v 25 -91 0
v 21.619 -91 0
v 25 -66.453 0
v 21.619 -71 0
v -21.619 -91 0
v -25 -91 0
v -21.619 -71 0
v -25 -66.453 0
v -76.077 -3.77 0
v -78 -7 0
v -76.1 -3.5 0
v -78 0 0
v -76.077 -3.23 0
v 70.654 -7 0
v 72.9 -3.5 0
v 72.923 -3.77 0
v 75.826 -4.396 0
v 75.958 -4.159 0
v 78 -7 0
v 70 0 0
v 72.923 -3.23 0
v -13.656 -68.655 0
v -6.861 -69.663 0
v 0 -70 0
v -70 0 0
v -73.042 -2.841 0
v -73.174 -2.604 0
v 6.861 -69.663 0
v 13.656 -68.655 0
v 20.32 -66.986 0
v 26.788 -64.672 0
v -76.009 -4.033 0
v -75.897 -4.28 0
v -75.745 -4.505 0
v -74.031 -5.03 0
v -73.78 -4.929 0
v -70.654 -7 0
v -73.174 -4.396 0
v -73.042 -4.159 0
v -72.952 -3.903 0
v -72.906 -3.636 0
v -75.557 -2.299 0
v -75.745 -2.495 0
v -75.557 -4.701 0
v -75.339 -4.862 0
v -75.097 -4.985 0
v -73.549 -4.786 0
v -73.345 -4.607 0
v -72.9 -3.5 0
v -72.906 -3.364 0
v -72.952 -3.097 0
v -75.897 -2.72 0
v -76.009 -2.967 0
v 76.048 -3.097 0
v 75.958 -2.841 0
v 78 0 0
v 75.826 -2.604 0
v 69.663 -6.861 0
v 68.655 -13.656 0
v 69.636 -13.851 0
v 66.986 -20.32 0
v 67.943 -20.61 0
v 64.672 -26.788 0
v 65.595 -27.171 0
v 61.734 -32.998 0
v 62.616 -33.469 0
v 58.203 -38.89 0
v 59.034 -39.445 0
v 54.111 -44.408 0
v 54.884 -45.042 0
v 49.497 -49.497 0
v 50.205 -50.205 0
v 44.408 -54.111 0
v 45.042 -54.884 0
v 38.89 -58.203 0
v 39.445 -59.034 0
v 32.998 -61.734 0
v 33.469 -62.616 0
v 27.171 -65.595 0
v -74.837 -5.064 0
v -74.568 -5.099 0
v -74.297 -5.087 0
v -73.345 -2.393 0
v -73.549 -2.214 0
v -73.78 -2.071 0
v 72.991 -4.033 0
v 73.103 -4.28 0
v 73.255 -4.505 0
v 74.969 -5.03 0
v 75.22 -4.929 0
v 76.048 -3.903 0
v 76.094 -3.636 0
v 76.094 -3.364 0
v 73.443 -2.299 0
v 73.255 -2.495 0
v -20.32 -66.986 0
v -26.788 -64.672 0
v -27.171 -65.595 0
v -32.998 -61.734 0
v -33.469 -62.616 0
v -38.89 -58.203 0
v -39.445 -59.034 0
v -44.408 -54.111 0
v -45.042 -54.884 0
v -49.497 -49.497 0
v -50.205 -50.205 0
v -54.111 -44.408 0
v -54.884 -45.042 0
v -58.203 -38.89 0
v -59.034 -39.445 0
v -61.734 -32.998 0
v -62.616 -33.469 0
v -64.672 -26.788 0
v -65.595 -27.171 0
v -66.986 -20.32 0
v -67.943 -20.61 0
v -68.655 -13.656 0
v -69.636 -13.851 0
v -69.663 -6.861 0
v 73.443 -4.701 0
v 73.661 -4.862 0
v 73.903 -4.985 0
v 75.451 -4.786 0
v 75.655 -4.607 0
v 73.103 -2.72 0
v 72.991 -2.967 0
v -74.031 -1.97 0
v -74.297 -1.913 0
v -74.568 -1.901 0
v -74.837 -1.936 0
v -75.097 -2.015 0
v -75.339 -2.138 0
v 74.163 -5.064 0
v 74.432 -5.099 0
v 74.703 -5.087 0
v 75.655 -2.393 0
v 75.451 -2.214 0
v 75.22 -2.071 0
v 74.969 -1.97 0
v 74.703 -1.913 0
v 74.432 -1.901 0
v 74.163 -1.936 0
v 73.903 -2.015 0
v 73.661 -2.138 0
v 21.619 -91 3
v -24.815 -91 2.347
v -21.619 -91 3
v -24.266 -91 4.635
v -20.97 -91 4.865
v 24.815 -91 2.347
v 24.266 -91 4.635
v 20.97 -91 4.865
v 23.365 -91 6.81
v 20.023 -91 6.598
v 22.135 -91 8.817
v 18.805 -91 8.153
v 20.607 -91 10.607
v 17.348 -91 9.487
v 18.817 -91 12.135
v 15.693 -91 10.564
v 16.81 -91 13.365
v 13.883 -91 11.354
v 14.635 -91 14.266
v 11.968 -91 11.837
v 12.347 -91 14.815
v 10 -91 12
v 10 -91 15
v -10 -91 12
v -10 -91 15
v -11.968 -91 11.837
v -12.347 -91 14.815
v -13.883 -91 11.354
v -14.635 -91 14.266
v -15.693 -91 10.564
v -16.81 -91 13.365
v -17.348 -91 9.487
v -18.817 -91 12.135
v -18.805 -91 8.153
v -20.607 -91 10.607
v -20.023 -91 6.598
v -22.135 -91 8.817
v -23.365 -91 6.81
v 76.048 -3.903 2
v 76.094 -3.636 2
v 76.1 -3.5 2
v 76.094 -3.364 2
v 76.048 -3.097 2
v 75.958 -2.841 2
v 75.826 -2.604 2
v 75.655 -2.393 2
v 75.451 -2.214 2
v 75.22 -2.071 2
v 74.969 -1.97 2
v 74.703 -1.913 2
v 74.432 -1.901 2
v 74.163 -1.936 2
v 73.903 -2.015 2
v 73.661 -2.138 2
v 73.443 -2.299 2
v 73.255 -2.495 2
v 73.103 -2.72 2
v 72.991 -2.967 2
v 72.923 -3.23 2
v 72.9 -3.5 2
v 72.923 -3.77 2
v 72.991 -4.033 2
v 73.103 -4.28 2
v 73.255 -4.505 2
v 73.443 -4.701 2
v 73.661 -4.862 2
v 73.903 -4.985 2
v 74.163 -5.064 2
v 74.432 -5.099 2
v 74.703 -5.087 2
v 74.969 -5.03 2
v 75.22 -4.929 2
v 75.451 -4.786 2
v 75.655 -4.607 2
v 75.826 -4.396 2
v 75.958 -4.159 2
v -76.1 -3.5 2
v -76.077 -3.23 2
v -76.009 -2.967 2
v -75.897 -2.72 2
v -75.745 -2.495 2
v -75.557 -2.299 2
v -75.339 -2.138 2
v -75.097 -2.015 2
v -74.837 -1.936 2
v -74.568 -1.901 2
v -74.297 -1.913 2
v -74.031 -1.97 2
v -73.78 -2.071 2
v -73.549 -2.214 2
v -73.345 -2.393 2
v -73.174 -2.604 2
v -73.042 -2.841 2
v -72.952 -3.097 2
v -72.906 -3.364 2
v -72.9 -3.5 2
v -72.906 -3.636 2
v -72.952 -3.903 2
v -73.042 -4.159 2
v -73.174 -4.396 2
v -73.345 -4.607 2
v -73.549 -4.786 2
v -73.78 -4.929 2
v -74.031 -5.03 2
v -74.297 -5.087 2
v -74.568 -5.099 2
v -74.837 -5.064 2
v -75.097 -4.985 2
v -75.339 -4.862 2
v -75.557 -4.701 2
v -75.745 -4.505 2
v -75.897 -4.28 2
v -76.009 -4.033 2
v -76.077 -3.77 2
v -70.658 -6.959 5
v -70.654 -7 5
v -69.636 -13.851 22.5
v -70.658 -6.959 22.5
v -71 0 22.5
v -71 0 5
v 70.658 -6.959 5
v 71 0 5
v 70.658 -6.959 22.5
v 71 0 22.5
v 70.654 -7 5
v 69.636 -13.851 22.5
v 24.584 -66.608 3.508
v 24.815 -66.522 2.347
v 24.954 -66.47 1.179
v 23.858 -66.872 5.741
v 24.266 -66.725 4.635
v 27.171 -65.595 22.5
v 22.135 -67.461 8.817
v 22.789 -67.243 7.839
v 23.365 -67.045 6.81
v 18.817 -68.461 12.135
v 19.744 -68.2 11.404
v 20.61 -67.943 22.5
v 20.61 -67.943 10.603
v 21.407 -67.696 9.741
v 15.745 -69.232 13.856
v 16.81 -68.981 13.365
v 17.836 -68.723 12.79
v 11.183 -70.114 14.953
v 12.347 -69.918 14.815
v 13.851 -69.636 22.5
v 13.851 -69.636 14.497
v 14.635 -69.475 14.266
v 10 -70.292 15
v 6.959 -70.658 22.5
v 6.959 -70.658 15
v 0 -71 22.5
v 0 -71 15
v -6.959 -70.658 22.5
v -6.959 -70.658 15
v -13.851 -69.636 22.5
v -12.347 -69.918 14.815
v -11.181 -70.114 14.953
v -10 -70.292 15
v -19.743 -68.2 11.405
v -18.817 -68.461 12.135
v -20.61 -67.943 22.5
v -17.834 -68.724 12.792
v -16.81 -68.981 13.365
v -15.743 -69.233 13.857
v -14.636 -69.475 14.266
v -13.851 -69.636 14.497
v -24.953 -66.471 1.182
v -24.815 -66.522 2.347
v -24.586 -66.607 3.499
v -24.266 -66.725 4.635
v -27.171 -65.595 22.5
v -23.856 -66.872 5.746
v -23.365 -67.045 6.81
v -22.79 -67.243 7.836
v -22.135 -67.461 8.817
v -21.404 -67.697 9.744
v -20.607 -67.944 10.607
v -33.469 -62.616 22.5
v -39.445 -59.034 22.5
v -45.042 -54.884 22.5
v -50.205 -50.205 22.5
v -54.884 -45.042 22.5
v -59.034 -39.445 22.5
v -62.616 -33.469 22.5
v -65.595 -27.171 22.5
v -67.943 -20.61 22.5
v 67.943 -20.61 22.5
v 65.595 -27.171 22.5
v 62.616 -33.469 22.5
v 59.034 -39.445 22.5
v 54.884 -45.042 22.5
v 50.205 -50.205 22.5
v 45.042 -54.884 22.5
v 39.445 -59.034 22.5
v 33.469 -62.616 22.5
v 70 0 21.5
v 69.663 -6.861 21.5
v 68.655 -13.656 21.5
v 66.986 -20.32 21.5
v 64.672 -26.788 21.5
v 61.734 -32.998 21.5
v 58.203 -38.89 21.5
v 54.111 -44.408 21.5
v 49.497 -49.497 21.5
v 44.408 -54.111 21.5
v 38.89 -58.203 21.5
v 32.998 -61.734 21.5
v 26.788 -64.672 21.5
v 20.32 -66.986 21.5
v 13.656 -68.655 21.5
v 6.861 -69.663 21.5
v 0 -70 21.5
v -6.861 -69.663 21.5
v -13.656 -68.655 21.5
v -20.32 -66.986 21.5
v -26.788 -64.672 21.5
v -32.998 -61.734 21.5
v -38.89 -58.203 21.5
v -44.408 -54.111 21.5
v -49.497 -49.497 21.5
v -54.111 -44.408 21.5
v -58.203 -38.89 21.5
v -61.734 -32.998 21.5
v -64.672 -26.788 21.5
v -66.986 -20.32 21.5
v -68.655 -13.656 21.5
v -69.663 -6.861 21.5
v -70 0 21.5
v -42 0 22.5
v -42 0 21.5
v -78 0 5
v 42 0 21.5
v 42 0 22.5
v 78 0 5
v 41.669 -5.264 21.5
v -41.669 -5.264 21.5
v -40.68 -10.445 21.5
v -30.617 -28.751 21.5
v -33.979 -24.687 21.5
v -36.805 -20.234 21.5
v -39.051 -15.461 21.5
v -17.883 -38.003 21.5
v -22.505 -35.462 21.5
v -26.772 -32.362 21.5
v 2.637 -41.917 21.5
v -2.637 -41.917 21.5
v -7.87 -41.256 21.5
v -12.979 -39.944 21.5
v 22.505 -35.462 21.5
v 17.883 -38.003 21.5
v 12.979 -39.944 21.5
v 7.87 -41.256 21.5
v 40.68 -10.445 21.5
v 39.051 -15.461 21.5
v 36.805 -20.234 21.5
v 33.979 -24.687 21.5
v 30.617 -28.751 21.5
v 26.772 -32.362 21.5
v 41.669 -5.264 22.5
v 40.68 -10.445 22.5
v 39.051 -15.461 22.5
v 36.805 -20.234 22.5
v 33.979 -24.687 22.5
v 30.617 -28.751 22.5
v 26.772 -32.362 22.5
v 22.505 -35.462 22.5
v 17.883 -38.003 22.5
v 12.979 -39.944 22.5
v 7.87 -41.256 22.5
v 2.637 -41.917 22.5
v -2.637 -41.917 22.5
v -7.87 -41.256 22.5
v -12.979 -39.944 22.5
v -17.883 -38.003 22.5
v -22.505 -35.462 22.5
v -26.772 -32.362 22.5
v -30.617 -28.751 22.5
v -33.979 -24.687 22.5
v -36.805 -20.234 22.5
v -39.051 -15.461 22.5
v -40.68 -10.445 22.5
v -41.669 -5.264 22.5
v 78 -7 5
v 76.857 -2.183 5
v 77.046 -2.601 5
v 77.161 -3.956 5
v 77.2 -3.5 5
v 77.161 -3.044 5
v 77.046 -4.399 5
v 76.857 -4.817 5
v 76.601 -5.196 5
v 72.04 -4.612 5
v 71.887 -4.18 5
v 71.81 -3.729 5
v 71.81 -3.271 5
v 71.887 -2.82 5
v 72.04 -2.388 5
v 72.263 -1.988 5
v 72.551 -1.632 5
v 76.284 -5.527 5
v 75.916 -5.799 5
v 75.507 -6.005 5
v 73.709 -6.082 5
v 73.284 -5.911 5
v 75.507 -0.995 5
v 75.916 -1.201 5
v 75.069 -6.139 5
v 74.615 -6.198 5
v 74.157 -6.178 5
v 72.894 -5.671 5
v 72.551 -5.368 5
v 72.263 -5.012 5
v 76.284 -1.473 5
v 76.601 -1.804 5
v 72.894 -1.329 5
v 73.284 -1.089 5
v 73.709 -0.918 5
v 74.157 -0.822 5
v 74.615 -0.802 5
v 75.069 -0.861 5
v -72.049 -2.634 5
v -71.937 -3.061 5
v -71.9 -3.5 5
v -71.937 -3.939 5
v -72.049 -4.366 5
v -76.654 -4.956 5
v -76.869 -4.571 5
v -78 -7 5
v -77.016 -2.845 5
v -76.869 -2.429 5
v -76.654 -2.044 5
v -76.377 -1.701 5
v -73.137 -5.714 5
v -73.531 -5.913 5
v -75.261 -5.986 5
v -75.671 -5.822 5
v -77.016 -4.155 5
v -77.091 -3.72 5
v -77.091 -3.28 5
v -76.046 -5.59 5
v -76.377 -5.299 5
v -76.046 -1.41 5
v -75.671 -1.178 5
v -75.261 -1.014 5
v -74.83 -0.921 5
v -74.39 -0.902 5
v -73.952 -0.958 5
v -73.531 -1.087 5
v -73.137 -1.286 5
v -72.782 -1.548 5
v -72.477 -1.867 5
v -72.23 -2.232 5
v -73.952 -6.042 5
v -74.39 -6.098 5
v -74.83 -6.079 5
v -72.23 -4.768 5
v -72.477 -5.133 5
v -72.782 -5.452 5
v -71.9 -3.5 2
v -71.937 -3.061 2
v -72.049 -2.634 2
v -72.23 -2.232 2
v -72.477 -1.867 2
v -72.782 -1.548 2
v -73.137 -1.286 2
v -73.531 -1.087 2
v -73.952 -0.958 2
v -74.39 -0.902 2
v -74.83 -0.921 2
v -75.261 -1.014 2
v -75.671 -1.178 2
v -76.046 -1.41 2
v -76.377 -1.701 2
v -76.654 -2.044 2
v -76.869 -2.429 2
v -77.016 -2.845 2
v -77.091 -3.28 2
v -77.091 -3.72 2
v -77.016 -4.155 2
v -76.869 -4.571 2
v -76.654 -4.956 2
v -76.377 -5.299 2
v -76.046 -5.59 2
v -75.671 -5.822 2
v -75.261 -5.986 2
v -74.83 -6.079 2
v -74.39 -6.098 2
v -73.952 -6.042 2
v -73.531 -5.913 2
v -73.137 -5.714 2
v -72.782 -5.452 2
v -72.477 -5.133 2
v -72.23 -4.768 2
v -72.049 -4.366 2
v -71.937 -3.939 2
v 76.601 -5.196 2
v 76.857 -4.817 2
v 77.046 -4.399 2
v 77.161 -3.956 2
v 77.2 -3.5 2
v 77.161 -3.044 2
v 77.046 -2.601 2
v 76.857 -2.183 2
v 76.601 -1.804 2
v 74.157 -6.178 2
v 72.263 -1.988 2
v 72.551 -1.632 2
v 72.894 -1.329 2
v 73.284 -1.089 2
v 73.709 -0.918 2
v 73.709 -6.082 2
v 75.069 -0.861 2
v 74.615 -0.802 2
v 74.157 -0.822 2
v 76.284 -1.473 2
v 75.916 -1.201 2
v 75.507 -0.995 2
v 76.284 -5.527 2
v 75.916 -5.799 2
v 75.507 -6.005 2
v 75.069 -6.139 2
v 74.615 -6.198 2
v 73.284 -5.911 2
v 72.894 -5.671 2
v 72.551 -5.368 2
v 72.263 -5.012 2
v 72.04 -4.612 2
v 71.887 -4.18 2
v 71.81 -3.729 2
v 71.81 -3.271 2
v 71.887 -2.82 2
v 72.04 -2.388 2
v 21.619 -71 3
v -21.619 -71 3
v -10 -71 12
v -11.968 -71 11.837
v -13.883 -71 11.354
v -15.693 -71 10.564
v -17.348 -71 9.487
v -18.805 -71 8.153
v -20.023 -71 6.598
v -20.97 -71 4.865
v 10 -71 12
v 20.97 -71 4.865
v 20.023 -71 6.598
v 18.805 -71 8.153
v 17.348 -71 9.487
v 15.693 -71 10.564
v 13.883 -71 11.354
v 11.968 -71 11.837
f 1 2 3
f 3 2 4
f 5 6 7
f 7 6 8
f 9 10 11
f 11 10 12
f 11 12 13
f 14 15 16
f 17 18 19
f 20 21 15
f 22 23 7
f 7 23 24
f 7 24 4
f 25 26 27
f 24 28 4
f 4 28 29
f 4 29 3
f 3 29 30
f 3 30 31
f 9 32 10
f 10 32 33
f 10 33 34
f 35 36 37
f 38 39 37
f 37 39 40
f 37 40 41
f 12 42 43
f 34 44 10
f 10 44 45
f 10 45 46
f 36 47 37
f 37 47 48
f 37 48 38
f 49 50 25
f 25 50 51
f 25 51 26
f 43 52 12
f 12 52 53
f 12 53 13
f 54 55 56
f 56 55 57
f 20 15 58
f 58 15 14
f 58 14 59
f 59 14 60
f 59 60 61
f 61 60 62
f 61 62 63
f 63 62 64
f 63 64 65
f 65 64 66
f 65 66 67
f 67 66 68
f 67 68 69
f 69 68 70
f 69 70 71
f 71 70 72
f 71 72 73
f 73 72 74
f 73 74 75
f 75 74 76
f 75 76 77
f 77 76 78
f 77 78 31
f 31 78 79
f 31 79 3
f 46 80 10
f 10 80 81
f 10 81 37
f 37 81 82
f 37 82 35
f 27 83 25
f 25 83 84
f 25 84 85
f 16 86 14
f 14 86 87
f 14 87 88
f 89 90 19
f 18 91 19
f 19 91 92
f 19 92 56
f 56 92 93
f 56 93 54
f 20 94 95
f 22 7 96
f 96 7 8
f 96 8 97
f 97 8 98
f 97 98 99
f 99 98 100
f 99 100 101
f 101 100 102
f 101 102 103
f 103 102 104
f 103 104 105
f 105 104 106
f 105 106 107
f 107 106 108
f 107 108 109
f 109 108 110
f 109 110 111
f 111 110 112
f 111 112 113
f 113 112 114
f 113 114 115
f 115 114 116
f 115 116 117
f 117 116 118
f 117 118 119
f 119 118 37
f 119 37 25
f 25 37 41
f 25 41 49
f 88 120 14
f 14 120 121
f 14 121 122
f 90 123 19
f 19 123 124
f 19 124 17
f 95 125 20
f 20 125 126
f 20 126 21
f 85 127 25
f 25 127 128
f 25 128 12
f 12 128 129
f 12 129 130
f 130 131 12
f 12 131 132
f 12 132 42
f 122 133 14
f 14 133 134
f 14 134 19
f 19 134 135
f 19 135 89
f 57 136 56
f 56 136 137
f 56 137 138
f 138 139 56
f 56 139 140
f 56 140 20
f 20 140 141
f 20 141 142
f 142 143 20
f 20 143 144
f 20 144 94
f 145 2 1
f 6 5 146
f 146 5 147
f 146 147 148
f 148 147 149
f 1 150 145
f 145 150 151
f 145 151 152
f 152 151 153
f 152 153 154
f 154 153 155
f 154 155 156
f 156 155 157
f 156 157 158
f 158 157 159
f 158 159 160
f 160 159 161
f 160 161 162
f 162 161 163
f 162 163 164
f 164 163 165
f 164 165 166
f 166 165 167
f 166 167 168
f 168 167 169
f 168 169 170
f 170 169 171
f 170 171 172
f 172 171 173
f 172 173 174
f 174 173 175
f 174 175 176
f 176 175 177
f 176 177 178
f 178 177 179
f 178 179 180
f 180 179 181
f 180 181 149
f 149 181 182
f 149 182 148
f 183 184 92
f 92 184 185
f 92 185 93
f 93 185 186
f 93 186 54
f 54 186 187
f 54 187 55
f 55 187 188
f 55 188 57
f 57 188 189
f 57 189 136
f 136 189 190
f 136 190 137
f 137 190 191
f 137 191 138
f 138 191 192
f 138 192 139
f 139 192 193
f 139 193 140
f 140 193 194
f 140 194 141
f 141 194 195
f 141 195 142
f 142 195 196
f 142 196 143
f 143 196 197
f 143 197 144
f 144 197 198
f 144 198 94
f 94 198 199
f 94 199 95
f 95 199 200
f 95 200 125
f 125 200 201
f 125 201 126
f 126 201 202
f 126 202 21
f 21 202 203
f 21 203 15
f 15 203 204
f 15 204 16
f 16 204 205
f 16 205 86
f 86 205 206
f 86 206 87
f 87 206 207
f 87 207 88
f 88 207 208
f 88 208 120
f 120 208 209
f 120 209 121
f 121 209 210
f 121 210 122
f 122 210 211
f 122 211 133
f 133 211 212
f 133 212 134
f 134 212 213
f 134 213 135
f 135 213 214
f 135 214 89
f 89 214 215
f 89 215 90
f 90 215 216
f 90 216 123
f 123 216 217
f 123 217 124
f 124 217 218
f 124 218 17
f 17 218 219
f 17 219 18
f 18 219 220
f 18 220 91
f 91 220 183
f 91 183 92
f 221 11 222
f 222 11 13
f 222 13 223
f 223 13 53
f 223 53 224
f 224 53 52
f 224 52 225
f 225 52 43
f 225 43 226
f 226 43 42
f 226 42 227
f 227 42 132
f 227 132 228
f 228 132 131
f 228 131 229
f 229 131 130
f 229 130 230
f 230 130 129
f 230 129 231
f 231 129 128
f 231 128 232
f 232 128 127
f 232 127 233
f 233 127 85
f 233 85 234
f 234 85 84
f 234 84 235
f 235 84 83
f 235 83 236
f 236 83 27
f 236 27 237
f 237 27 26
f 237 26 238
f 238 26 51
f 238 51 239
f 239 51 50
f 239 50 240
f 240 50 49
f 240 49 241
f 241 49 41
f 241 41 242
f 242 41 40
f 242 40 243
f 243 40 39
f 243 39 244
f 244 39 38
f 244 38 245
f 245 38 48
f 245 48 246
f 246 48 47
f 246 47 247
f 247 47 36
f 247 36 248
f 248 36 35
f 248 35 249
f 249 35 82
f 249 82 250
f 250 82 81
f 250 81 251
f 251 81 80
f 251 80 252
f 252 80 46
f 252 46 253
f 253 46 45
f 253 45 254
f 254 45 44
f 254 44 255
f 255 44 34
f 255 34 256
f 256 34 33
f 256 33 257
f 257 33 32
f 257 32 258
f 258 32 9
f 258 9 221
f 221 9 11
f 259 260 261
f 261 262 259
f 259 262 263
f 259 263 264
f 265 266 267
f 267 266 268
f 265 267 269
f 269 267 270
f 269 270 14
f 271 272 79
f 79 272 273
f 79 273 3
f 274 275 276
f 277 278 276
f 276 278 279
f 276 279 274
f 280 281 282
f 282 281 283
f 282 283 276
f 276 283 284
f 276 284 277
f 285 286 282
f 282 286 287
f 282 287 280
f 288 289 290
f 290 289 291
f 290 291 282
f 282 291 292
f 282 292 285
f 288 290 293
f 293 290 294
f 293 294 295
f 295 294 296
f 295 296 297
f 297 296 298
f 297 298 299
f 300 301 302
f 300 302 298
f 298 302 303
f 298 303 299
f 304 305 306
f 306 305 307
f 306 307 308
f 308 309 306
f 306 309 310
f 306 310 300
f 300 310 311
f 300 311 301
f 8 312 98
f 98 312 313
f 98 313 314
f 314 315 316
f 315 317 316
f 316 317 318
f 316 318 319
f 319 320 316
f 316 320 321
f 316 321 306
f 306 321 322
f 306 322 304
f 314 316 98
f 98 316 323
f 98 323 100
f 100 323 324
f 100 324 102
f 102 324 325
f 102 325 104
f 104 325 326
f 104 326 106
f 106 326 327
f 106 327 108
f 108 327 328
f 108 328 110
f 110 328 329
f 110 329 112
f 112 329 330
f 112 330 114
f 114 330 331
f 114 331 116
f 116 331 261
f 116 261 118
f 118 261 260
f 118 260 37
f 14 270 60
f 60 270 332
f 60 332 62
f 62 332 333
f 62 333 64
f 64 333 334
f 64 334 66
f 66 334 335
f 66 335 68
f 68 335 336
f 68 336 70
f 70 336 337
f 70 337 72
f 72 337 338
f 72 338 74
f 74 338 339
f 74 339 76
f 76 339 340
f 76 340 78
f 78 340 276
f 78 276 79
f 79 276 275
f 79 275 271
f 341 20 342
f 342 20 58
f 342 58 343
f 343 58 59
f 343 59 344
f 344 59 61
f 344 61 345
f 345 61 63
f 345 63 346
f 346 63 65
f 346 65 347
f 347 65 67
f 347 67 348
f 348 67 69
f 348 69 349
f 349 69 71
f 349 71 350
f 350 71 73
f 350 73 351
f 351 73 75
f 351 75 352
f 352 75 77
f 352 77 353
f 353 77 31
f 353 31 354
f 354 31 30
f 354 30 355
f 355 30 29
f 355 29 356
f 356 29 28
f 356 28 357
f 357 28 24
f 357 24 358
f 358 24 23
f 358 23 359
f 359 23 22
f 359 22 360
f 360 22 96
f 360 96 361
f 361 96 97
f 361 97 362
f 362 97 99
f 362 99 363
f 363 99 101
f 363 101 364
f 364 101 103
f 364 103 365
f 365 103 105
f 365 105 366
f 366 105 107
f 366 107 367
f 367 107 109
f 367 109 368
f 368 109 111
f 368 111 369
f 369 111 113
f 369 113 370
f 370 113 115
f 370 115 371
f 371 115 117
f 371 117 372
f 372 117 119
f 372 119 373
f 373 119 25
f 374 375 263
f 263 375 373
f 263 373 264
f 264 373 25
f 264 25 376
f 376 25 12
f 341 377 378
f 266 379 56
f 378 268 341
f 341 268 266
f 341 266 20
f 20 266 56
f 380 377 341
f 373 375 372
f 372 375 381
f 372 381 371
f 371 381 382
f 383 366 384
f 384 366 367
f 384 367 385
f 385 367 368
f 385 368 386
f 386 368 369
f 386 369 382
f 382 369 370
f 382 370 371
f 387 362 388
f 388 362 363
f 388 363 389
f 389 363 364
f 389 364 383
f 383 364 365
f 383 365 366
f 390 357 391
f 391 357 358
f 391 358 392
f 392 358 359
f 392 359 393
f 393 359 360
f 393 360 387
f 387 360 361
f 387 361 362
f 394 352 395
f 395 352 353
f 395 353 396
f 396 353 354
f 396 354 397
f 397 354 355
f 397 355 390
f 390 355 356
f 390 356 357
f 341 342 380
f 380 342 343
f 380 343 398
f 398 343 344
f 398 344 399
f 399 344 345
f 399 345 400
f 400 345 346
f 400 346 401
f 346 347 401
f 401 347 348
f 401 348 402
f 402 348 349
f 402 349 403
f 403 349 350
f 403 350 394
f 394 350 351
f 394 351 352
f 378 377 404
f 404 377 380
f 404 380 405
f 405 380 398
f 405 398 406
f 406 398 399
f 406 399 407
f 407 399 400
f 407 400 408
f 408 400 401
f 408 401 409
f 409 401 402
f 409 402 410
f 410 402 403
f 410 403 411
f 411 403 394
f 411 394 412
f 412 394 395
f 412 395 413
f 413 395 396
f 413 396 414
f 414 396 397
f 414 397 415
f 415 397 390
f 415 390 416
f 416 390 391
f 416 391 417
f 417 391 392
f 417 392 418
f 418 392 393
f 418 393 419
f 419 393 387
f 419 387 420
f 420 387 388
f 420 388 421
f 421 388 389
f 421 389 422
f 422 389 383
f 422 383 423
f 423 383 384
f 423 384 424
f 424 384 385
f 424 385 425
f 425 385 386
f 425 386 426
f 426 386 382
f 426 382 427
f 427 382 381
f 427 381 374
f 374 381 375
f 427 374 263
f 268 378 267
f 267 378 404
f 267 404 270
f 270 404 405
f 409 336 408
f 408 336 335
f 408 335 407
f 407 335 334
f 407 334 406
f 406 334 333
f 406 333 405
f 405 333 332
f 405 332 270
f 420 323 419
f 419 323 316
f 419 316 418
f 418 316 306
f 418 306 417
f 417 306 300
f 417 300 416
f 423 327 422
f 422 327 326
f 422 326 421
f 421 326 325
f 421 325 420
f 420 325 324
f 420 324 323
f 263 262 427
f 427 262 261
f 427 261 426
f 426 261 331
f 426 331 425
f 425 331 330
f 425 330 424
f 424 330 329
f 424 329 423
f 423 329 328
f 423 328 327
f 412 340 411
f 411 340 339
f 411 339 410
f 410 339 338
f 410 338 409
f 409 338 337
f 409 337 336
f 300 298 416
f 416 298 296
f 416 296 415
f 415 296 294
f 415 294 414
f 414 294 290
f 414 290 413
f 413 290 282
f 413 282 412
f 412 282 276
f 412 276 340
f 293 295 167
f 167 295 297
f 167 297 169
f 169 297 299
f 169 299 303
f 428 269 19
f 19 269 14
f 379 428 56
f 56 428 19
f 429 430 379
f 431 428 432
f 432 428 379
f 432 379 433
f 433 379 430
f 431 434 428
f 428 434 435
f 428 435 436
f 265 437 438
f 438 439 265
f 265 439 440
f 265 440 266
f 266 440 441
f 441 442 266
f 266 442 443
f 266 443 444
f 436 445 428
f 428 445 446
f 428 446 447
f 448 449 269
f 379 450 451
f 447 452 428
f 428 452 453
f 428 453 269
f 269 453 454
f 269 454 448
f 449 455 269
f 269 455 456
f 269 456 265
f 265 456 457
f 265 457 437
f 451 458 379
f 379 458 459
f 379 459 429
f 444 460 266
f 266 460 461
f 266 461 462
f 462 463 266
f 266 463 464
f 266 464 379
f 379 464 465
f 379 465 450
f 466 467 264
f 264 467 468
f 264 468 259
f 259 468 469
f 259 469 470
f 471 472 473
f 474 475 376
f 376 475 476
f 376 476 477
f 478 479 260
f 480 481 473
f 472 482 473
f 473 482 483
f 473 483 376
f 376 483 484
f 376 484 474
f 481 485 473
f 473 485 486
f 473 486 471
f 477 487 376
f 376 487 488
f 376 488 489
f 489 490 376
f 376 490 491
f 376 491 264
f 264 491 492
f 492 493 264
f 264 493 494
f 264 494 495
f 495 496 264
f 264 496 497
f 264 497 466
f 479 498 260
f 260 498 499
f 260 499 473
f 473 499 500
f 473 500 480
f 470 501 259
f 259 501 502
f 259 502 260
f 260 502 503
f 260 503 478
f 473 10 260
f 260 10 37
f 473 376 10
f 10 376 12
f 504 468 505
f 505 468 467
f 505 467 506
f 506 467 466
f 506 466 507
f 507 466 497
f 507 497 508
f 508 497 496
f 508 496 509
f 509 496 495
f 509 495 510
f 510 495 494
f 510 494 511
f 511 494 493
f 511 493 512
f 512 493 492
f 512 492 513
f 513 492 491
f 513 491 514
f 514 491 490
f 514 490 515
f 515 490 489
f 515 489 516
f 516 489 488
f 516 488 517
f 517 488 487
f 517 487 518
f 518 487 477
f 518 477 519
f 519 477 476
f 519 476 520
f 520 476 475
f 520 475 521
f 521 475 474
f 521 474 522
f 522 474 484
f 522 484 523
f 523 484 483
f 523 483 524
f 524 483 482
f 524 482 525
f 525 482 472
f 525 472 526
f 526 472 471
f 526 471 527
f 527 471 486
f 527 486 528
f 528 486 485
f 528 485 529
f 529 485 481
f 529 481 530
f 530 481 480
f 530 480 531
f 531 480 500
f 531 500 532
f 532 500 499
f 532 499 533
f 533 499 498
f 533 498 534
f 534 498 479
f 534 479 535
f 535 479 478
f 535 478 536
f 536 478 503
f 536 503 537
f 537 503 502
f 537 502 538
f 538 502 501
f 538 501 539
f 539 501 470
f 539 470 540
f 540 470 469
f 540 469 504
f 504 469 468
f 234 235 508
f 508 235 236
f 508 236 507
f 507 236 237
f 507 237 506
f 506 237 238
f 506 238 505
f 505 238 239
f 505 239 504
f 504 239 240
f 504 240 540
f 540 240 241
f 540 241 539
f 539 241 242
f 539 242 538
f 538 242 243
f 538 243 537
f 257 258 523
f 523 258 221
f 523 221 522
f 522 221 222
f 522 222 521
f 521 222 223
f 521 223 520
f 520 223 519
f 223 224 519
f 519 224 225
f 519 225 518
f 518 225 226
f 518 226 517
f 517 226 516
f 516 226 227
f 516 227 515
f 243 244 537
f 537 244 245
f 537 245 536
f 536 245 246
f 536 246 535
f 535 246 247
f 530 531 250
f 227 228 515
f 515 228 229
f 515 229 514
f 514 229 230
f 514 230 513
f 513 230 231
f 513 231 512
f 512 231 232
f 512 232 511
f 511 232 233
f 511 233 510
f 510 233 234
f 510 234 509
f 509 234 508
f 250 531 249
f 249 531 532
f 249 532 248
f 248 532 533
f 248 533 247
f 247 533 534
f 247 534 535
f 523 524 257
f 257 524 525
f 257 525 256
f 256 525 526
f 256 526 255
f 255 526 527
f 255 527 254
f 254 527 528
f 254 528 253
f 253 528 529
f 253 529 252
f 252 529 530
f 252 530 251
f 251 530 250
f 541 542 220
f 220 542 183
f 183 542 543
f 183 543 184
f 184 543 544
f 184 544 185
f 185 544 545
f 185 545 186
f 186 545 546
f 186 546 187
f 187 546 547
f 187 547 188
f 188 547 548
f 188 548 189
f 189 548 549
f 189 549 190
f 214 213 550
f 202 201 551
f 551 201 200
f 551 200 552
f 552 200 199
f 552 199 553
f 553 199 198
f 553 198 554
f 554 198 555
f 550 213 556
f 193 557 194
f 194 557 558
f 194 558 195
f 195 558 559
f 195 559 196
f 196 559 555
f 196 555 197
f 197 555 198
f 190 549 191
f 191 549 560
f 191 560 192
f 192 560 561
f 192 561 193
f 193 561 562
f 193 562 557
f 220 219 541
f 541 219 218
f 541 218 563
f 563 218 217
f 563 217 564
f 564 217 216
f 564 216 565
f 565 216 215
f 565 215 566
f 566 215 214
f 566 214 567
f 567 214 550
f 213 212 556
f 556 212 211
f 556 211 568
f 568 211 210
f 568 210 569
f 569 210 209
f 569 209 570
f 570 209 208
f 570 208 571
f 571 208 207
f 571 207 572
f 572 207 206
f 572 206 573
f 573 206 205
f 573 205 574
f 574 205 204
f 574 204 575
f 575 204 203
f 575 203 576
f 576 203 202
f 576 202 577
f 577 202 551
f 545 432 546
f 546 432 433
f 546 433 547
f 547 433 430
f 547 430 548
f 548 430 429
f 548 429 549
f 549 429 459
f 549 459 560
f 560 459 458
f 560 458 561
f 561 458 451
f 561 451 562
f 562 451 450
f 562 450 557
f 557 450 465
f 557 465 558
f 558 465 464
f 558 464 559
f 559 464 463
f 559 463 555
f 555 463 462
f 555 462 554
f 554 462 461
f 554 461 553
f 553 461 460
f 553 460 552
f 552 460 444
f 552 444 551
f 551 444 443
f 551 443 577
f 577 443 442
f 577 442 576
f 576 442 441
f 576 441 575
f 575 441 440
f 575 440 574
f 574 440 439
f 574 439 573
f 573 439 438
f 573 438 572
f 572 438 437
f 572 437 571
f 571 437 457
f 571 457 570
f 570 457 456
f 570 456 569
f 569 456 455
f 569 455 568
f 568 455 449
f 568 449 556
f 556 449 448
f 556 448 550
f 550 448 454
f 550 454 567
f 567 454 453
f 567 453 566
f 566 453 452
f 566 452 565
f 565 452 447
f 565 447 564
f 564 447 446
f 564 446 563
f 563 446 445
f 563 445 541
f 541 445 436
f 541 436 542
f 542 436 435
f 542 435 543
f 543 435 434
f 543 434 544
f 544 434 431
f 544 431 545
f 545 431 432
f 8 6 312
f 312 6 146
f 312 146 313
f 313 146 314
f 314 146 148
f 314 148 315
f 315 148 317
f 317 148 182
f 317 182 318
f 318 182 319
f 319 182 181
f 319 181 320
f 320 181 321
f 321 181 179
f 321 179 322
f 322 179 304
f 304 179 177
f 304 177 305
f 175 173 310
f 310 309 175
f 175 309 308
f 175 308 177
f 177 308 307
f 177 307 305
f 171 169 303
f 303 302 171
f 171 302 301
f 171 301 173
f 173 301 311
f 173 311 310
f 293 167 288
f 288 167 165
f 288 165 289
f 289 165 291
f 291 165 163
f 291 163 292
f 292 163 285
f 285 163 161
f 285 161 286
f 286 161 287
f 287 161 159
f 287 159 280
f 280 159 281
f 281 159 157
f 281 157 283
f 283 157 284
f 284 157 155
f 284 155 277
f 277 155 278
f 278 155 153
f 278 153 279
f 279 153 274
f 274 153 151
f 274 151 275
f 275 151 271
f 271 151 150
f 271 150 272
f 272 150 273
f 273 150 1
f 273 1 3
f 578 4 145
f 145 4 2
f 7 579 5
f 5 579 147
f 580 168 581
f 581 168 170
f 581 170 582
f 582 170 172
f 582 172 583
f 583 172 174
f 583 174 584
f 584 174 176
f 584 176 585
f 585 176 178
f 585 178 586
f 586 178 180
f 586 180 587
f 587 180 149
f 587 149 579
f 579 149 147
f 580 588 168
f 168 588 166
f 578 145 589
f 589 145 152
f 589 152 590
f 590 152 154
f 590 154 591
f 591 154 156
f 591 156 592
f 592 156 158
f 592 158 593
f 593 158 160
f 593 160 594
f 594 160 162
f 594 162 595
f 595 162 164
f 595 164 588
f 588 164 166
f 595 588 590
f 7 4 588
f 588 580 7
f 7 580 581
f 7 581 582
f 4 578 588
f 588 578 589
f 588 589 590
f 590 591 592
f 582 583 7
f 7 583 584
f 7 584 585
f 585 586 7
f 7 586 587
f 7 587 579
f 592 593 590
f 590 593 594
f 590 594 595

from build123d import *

# Parameters (mm, degrees)
BOSS_EXTRUDE1_DEPTH = 21.5
BOSS_EXTRUDE2_DEPTH = 1
SKETCH3_W           = 50
SKETCH3_H           = 20
BOSS_EXTRUDE3_DEPTH = 15
SKETCH8_R           = 1.6
BOSS_EXTRUDE5_DEPTH = 5
SKETCH10_R          = 2.7
SKETCH10_R_2        = 2.6
CUT_EXTRUDE5_DEPTH  = 3
FILLET2_R           = 15
SKETCH11_W          = 43.237900078
SKETCH11_H          = 3
CUT_EXTRUDE7_DEPTH  = 20


with BuildPart() as part:
    # Sketch1 → Boss-Extrude1 (new body)
    with BuildSketch(Plane.XY):
        with BuildLine():
            Line((71, 0), (70, 0))
            ThreePointArc((70, 0), (0, -70), (-70, 0))
            Line((-70, 0), (-71, 0))
            ThreePointArc((-71, 0), (0, -71), (71, 0))
        make_face()
    extrude(amount=BOSS_EXTRUDE1_DEPTH)

    # Sketch2 → Boss-Extrude2 (add)
    with BuildSketch(Plane.XY.offset(21.5)):
        with BuildLine():
            Line((71, 0), (70, 0))
            ThreePointArc((70, 0), (0, -70), (-70, 0))
            Line((-70, 0), (-71, 0))
            ThreePointArc((-71, 0), (0, -71), (71, 0))
        make_face()
        with BuildLine():
            Line((-42, 0), (-70, 0))
            ThreePointArc((-70, 0), (0, -70), (70, 0))
            Line((70, 0), (42, 0))
            ThreePointArc((42, 0), (0, -42), (-42, 0))
        make_face()
    extrude(amount=BOSS_EXTRUDE2_DEPTH)

    # Sketch3 → Boss-Extrude3 (add)
    with BuildSketch(Plane(origin=(0, 0, 0), x_dir=(-1, 0, 0), z_dir=(0, 0, -1))):
        with BuildLine():
            Line((-25, -66.452990903), (-25, -71))
            Line((-25, -71), (0, -71))
            ThreePointArc((0, -71), (-12.705070757, -69.853999006), (-25, -66.452990903))
        make_face()
        with BuildLine():
            ThreePointArc((25, -66.452990903), (12.705070757, -69.853999006), (0, -71))
            Line((0, -71), (25, -71))
            Line((25, -71), (25, -66.452990903))
        make_face()
        with Locations((0, -81)):
            Rectangle(SKETCH3_W, SKETCH3_H)
    extrude(amount=-BOSS_EXTRUDE3_DEPTH)

    # Sketch8 → Boss-Extrude5 (add)
    # profile 1 of 2: a face of its own
    with BuildSketch(Plane(origin=(0, 0, 0), x_dir=(-1, 0, 0), z_dir=(0, 0, -1))):
        with BuildLine():
            ThreePointArc((-70.654086931, -7), (-70.913469003, -3.504270818), (-71, 0))
            Line((-71, 0), (-78, 0))
            Line((-78, 0), (-78, -7))
            Line((-78, -7), (-70.654086931, -7))
        make_face()
        with Locations((-74.5, -3.5)):
            Circle(SKETCH8_R, mode=Mode.SUBTRACT)
    # profile 2 of 2: a face of its own
    with BuildSketch(Plane(origin=(0, 0, 0), x_dir=(-1, 0, 0), z_dir=(0, 0, -1))):
        with BuildLine():
            Line((78, 0), (71, 0))
            ThreePointArc((71, 0), (70.913469003, -3.504270818), (70.654086931, -7))
            Line((70.654086931, -7), (78, -7))
            Line((78, -7), (78, 0))
        make_face()
        with Locations(Location((74.5, -3.5, 0), (0, 0, 180))):
            Circle(SKETCH8_R, mode=Mode.SUBTRACT)
    extrude(amount=-BOSS_EXTRUDE5_DEPTH)

    # Sketch10 → Cut-Extrude5 (cut)
    with BuildSketch(Plane.XY.offset(5)):
        with Locations((74.5, -3.5)):
            Circle(SKETCH10_R)
        with Locations((-74.5, -3.5)):
            Circle(SKETCH10_R_2)
    extrude(amount=-CUT_EXTRUDE5_DEPTH, mode=Mode.SUBTRACT)

    # Fillet2
    fillet2_edges = [part.edges().sort_by_distance(p)[0] for p in [
        (-25, -78.726495452, 15),
        (25, -78.726495452, 15),
    ]]
    fillet(fillet2_edges, radius=FILLET2_R - 0.0001)  # a hair under: the kernel refuses the full size

    # Sketch11 → Cut-Extrude7 (cut)
    with BuildSketch(Plane.XZ.offset(91)):
        with Locations((0, 1.5)):
            Rectangle(SKETCH11_W, SKETCH11_H)
        with BuildLine():
            Line((-21.618950039, 3), (21.618950039, 3))
            ThreePointArc((21.618950039, 3), (17.348469228, 9.486832981), (10, 12))
            Line((10, 12), (-10, 12))
            ThreePointArc((-10, 12), (-17.348469228, 9.486832981), (-21.618950039, 3))
        make_face()
    extrude(amount=-CUT_EXTRUDE7_DEPTH, mode=Mode.SUBTRACT)


solid = part.part
